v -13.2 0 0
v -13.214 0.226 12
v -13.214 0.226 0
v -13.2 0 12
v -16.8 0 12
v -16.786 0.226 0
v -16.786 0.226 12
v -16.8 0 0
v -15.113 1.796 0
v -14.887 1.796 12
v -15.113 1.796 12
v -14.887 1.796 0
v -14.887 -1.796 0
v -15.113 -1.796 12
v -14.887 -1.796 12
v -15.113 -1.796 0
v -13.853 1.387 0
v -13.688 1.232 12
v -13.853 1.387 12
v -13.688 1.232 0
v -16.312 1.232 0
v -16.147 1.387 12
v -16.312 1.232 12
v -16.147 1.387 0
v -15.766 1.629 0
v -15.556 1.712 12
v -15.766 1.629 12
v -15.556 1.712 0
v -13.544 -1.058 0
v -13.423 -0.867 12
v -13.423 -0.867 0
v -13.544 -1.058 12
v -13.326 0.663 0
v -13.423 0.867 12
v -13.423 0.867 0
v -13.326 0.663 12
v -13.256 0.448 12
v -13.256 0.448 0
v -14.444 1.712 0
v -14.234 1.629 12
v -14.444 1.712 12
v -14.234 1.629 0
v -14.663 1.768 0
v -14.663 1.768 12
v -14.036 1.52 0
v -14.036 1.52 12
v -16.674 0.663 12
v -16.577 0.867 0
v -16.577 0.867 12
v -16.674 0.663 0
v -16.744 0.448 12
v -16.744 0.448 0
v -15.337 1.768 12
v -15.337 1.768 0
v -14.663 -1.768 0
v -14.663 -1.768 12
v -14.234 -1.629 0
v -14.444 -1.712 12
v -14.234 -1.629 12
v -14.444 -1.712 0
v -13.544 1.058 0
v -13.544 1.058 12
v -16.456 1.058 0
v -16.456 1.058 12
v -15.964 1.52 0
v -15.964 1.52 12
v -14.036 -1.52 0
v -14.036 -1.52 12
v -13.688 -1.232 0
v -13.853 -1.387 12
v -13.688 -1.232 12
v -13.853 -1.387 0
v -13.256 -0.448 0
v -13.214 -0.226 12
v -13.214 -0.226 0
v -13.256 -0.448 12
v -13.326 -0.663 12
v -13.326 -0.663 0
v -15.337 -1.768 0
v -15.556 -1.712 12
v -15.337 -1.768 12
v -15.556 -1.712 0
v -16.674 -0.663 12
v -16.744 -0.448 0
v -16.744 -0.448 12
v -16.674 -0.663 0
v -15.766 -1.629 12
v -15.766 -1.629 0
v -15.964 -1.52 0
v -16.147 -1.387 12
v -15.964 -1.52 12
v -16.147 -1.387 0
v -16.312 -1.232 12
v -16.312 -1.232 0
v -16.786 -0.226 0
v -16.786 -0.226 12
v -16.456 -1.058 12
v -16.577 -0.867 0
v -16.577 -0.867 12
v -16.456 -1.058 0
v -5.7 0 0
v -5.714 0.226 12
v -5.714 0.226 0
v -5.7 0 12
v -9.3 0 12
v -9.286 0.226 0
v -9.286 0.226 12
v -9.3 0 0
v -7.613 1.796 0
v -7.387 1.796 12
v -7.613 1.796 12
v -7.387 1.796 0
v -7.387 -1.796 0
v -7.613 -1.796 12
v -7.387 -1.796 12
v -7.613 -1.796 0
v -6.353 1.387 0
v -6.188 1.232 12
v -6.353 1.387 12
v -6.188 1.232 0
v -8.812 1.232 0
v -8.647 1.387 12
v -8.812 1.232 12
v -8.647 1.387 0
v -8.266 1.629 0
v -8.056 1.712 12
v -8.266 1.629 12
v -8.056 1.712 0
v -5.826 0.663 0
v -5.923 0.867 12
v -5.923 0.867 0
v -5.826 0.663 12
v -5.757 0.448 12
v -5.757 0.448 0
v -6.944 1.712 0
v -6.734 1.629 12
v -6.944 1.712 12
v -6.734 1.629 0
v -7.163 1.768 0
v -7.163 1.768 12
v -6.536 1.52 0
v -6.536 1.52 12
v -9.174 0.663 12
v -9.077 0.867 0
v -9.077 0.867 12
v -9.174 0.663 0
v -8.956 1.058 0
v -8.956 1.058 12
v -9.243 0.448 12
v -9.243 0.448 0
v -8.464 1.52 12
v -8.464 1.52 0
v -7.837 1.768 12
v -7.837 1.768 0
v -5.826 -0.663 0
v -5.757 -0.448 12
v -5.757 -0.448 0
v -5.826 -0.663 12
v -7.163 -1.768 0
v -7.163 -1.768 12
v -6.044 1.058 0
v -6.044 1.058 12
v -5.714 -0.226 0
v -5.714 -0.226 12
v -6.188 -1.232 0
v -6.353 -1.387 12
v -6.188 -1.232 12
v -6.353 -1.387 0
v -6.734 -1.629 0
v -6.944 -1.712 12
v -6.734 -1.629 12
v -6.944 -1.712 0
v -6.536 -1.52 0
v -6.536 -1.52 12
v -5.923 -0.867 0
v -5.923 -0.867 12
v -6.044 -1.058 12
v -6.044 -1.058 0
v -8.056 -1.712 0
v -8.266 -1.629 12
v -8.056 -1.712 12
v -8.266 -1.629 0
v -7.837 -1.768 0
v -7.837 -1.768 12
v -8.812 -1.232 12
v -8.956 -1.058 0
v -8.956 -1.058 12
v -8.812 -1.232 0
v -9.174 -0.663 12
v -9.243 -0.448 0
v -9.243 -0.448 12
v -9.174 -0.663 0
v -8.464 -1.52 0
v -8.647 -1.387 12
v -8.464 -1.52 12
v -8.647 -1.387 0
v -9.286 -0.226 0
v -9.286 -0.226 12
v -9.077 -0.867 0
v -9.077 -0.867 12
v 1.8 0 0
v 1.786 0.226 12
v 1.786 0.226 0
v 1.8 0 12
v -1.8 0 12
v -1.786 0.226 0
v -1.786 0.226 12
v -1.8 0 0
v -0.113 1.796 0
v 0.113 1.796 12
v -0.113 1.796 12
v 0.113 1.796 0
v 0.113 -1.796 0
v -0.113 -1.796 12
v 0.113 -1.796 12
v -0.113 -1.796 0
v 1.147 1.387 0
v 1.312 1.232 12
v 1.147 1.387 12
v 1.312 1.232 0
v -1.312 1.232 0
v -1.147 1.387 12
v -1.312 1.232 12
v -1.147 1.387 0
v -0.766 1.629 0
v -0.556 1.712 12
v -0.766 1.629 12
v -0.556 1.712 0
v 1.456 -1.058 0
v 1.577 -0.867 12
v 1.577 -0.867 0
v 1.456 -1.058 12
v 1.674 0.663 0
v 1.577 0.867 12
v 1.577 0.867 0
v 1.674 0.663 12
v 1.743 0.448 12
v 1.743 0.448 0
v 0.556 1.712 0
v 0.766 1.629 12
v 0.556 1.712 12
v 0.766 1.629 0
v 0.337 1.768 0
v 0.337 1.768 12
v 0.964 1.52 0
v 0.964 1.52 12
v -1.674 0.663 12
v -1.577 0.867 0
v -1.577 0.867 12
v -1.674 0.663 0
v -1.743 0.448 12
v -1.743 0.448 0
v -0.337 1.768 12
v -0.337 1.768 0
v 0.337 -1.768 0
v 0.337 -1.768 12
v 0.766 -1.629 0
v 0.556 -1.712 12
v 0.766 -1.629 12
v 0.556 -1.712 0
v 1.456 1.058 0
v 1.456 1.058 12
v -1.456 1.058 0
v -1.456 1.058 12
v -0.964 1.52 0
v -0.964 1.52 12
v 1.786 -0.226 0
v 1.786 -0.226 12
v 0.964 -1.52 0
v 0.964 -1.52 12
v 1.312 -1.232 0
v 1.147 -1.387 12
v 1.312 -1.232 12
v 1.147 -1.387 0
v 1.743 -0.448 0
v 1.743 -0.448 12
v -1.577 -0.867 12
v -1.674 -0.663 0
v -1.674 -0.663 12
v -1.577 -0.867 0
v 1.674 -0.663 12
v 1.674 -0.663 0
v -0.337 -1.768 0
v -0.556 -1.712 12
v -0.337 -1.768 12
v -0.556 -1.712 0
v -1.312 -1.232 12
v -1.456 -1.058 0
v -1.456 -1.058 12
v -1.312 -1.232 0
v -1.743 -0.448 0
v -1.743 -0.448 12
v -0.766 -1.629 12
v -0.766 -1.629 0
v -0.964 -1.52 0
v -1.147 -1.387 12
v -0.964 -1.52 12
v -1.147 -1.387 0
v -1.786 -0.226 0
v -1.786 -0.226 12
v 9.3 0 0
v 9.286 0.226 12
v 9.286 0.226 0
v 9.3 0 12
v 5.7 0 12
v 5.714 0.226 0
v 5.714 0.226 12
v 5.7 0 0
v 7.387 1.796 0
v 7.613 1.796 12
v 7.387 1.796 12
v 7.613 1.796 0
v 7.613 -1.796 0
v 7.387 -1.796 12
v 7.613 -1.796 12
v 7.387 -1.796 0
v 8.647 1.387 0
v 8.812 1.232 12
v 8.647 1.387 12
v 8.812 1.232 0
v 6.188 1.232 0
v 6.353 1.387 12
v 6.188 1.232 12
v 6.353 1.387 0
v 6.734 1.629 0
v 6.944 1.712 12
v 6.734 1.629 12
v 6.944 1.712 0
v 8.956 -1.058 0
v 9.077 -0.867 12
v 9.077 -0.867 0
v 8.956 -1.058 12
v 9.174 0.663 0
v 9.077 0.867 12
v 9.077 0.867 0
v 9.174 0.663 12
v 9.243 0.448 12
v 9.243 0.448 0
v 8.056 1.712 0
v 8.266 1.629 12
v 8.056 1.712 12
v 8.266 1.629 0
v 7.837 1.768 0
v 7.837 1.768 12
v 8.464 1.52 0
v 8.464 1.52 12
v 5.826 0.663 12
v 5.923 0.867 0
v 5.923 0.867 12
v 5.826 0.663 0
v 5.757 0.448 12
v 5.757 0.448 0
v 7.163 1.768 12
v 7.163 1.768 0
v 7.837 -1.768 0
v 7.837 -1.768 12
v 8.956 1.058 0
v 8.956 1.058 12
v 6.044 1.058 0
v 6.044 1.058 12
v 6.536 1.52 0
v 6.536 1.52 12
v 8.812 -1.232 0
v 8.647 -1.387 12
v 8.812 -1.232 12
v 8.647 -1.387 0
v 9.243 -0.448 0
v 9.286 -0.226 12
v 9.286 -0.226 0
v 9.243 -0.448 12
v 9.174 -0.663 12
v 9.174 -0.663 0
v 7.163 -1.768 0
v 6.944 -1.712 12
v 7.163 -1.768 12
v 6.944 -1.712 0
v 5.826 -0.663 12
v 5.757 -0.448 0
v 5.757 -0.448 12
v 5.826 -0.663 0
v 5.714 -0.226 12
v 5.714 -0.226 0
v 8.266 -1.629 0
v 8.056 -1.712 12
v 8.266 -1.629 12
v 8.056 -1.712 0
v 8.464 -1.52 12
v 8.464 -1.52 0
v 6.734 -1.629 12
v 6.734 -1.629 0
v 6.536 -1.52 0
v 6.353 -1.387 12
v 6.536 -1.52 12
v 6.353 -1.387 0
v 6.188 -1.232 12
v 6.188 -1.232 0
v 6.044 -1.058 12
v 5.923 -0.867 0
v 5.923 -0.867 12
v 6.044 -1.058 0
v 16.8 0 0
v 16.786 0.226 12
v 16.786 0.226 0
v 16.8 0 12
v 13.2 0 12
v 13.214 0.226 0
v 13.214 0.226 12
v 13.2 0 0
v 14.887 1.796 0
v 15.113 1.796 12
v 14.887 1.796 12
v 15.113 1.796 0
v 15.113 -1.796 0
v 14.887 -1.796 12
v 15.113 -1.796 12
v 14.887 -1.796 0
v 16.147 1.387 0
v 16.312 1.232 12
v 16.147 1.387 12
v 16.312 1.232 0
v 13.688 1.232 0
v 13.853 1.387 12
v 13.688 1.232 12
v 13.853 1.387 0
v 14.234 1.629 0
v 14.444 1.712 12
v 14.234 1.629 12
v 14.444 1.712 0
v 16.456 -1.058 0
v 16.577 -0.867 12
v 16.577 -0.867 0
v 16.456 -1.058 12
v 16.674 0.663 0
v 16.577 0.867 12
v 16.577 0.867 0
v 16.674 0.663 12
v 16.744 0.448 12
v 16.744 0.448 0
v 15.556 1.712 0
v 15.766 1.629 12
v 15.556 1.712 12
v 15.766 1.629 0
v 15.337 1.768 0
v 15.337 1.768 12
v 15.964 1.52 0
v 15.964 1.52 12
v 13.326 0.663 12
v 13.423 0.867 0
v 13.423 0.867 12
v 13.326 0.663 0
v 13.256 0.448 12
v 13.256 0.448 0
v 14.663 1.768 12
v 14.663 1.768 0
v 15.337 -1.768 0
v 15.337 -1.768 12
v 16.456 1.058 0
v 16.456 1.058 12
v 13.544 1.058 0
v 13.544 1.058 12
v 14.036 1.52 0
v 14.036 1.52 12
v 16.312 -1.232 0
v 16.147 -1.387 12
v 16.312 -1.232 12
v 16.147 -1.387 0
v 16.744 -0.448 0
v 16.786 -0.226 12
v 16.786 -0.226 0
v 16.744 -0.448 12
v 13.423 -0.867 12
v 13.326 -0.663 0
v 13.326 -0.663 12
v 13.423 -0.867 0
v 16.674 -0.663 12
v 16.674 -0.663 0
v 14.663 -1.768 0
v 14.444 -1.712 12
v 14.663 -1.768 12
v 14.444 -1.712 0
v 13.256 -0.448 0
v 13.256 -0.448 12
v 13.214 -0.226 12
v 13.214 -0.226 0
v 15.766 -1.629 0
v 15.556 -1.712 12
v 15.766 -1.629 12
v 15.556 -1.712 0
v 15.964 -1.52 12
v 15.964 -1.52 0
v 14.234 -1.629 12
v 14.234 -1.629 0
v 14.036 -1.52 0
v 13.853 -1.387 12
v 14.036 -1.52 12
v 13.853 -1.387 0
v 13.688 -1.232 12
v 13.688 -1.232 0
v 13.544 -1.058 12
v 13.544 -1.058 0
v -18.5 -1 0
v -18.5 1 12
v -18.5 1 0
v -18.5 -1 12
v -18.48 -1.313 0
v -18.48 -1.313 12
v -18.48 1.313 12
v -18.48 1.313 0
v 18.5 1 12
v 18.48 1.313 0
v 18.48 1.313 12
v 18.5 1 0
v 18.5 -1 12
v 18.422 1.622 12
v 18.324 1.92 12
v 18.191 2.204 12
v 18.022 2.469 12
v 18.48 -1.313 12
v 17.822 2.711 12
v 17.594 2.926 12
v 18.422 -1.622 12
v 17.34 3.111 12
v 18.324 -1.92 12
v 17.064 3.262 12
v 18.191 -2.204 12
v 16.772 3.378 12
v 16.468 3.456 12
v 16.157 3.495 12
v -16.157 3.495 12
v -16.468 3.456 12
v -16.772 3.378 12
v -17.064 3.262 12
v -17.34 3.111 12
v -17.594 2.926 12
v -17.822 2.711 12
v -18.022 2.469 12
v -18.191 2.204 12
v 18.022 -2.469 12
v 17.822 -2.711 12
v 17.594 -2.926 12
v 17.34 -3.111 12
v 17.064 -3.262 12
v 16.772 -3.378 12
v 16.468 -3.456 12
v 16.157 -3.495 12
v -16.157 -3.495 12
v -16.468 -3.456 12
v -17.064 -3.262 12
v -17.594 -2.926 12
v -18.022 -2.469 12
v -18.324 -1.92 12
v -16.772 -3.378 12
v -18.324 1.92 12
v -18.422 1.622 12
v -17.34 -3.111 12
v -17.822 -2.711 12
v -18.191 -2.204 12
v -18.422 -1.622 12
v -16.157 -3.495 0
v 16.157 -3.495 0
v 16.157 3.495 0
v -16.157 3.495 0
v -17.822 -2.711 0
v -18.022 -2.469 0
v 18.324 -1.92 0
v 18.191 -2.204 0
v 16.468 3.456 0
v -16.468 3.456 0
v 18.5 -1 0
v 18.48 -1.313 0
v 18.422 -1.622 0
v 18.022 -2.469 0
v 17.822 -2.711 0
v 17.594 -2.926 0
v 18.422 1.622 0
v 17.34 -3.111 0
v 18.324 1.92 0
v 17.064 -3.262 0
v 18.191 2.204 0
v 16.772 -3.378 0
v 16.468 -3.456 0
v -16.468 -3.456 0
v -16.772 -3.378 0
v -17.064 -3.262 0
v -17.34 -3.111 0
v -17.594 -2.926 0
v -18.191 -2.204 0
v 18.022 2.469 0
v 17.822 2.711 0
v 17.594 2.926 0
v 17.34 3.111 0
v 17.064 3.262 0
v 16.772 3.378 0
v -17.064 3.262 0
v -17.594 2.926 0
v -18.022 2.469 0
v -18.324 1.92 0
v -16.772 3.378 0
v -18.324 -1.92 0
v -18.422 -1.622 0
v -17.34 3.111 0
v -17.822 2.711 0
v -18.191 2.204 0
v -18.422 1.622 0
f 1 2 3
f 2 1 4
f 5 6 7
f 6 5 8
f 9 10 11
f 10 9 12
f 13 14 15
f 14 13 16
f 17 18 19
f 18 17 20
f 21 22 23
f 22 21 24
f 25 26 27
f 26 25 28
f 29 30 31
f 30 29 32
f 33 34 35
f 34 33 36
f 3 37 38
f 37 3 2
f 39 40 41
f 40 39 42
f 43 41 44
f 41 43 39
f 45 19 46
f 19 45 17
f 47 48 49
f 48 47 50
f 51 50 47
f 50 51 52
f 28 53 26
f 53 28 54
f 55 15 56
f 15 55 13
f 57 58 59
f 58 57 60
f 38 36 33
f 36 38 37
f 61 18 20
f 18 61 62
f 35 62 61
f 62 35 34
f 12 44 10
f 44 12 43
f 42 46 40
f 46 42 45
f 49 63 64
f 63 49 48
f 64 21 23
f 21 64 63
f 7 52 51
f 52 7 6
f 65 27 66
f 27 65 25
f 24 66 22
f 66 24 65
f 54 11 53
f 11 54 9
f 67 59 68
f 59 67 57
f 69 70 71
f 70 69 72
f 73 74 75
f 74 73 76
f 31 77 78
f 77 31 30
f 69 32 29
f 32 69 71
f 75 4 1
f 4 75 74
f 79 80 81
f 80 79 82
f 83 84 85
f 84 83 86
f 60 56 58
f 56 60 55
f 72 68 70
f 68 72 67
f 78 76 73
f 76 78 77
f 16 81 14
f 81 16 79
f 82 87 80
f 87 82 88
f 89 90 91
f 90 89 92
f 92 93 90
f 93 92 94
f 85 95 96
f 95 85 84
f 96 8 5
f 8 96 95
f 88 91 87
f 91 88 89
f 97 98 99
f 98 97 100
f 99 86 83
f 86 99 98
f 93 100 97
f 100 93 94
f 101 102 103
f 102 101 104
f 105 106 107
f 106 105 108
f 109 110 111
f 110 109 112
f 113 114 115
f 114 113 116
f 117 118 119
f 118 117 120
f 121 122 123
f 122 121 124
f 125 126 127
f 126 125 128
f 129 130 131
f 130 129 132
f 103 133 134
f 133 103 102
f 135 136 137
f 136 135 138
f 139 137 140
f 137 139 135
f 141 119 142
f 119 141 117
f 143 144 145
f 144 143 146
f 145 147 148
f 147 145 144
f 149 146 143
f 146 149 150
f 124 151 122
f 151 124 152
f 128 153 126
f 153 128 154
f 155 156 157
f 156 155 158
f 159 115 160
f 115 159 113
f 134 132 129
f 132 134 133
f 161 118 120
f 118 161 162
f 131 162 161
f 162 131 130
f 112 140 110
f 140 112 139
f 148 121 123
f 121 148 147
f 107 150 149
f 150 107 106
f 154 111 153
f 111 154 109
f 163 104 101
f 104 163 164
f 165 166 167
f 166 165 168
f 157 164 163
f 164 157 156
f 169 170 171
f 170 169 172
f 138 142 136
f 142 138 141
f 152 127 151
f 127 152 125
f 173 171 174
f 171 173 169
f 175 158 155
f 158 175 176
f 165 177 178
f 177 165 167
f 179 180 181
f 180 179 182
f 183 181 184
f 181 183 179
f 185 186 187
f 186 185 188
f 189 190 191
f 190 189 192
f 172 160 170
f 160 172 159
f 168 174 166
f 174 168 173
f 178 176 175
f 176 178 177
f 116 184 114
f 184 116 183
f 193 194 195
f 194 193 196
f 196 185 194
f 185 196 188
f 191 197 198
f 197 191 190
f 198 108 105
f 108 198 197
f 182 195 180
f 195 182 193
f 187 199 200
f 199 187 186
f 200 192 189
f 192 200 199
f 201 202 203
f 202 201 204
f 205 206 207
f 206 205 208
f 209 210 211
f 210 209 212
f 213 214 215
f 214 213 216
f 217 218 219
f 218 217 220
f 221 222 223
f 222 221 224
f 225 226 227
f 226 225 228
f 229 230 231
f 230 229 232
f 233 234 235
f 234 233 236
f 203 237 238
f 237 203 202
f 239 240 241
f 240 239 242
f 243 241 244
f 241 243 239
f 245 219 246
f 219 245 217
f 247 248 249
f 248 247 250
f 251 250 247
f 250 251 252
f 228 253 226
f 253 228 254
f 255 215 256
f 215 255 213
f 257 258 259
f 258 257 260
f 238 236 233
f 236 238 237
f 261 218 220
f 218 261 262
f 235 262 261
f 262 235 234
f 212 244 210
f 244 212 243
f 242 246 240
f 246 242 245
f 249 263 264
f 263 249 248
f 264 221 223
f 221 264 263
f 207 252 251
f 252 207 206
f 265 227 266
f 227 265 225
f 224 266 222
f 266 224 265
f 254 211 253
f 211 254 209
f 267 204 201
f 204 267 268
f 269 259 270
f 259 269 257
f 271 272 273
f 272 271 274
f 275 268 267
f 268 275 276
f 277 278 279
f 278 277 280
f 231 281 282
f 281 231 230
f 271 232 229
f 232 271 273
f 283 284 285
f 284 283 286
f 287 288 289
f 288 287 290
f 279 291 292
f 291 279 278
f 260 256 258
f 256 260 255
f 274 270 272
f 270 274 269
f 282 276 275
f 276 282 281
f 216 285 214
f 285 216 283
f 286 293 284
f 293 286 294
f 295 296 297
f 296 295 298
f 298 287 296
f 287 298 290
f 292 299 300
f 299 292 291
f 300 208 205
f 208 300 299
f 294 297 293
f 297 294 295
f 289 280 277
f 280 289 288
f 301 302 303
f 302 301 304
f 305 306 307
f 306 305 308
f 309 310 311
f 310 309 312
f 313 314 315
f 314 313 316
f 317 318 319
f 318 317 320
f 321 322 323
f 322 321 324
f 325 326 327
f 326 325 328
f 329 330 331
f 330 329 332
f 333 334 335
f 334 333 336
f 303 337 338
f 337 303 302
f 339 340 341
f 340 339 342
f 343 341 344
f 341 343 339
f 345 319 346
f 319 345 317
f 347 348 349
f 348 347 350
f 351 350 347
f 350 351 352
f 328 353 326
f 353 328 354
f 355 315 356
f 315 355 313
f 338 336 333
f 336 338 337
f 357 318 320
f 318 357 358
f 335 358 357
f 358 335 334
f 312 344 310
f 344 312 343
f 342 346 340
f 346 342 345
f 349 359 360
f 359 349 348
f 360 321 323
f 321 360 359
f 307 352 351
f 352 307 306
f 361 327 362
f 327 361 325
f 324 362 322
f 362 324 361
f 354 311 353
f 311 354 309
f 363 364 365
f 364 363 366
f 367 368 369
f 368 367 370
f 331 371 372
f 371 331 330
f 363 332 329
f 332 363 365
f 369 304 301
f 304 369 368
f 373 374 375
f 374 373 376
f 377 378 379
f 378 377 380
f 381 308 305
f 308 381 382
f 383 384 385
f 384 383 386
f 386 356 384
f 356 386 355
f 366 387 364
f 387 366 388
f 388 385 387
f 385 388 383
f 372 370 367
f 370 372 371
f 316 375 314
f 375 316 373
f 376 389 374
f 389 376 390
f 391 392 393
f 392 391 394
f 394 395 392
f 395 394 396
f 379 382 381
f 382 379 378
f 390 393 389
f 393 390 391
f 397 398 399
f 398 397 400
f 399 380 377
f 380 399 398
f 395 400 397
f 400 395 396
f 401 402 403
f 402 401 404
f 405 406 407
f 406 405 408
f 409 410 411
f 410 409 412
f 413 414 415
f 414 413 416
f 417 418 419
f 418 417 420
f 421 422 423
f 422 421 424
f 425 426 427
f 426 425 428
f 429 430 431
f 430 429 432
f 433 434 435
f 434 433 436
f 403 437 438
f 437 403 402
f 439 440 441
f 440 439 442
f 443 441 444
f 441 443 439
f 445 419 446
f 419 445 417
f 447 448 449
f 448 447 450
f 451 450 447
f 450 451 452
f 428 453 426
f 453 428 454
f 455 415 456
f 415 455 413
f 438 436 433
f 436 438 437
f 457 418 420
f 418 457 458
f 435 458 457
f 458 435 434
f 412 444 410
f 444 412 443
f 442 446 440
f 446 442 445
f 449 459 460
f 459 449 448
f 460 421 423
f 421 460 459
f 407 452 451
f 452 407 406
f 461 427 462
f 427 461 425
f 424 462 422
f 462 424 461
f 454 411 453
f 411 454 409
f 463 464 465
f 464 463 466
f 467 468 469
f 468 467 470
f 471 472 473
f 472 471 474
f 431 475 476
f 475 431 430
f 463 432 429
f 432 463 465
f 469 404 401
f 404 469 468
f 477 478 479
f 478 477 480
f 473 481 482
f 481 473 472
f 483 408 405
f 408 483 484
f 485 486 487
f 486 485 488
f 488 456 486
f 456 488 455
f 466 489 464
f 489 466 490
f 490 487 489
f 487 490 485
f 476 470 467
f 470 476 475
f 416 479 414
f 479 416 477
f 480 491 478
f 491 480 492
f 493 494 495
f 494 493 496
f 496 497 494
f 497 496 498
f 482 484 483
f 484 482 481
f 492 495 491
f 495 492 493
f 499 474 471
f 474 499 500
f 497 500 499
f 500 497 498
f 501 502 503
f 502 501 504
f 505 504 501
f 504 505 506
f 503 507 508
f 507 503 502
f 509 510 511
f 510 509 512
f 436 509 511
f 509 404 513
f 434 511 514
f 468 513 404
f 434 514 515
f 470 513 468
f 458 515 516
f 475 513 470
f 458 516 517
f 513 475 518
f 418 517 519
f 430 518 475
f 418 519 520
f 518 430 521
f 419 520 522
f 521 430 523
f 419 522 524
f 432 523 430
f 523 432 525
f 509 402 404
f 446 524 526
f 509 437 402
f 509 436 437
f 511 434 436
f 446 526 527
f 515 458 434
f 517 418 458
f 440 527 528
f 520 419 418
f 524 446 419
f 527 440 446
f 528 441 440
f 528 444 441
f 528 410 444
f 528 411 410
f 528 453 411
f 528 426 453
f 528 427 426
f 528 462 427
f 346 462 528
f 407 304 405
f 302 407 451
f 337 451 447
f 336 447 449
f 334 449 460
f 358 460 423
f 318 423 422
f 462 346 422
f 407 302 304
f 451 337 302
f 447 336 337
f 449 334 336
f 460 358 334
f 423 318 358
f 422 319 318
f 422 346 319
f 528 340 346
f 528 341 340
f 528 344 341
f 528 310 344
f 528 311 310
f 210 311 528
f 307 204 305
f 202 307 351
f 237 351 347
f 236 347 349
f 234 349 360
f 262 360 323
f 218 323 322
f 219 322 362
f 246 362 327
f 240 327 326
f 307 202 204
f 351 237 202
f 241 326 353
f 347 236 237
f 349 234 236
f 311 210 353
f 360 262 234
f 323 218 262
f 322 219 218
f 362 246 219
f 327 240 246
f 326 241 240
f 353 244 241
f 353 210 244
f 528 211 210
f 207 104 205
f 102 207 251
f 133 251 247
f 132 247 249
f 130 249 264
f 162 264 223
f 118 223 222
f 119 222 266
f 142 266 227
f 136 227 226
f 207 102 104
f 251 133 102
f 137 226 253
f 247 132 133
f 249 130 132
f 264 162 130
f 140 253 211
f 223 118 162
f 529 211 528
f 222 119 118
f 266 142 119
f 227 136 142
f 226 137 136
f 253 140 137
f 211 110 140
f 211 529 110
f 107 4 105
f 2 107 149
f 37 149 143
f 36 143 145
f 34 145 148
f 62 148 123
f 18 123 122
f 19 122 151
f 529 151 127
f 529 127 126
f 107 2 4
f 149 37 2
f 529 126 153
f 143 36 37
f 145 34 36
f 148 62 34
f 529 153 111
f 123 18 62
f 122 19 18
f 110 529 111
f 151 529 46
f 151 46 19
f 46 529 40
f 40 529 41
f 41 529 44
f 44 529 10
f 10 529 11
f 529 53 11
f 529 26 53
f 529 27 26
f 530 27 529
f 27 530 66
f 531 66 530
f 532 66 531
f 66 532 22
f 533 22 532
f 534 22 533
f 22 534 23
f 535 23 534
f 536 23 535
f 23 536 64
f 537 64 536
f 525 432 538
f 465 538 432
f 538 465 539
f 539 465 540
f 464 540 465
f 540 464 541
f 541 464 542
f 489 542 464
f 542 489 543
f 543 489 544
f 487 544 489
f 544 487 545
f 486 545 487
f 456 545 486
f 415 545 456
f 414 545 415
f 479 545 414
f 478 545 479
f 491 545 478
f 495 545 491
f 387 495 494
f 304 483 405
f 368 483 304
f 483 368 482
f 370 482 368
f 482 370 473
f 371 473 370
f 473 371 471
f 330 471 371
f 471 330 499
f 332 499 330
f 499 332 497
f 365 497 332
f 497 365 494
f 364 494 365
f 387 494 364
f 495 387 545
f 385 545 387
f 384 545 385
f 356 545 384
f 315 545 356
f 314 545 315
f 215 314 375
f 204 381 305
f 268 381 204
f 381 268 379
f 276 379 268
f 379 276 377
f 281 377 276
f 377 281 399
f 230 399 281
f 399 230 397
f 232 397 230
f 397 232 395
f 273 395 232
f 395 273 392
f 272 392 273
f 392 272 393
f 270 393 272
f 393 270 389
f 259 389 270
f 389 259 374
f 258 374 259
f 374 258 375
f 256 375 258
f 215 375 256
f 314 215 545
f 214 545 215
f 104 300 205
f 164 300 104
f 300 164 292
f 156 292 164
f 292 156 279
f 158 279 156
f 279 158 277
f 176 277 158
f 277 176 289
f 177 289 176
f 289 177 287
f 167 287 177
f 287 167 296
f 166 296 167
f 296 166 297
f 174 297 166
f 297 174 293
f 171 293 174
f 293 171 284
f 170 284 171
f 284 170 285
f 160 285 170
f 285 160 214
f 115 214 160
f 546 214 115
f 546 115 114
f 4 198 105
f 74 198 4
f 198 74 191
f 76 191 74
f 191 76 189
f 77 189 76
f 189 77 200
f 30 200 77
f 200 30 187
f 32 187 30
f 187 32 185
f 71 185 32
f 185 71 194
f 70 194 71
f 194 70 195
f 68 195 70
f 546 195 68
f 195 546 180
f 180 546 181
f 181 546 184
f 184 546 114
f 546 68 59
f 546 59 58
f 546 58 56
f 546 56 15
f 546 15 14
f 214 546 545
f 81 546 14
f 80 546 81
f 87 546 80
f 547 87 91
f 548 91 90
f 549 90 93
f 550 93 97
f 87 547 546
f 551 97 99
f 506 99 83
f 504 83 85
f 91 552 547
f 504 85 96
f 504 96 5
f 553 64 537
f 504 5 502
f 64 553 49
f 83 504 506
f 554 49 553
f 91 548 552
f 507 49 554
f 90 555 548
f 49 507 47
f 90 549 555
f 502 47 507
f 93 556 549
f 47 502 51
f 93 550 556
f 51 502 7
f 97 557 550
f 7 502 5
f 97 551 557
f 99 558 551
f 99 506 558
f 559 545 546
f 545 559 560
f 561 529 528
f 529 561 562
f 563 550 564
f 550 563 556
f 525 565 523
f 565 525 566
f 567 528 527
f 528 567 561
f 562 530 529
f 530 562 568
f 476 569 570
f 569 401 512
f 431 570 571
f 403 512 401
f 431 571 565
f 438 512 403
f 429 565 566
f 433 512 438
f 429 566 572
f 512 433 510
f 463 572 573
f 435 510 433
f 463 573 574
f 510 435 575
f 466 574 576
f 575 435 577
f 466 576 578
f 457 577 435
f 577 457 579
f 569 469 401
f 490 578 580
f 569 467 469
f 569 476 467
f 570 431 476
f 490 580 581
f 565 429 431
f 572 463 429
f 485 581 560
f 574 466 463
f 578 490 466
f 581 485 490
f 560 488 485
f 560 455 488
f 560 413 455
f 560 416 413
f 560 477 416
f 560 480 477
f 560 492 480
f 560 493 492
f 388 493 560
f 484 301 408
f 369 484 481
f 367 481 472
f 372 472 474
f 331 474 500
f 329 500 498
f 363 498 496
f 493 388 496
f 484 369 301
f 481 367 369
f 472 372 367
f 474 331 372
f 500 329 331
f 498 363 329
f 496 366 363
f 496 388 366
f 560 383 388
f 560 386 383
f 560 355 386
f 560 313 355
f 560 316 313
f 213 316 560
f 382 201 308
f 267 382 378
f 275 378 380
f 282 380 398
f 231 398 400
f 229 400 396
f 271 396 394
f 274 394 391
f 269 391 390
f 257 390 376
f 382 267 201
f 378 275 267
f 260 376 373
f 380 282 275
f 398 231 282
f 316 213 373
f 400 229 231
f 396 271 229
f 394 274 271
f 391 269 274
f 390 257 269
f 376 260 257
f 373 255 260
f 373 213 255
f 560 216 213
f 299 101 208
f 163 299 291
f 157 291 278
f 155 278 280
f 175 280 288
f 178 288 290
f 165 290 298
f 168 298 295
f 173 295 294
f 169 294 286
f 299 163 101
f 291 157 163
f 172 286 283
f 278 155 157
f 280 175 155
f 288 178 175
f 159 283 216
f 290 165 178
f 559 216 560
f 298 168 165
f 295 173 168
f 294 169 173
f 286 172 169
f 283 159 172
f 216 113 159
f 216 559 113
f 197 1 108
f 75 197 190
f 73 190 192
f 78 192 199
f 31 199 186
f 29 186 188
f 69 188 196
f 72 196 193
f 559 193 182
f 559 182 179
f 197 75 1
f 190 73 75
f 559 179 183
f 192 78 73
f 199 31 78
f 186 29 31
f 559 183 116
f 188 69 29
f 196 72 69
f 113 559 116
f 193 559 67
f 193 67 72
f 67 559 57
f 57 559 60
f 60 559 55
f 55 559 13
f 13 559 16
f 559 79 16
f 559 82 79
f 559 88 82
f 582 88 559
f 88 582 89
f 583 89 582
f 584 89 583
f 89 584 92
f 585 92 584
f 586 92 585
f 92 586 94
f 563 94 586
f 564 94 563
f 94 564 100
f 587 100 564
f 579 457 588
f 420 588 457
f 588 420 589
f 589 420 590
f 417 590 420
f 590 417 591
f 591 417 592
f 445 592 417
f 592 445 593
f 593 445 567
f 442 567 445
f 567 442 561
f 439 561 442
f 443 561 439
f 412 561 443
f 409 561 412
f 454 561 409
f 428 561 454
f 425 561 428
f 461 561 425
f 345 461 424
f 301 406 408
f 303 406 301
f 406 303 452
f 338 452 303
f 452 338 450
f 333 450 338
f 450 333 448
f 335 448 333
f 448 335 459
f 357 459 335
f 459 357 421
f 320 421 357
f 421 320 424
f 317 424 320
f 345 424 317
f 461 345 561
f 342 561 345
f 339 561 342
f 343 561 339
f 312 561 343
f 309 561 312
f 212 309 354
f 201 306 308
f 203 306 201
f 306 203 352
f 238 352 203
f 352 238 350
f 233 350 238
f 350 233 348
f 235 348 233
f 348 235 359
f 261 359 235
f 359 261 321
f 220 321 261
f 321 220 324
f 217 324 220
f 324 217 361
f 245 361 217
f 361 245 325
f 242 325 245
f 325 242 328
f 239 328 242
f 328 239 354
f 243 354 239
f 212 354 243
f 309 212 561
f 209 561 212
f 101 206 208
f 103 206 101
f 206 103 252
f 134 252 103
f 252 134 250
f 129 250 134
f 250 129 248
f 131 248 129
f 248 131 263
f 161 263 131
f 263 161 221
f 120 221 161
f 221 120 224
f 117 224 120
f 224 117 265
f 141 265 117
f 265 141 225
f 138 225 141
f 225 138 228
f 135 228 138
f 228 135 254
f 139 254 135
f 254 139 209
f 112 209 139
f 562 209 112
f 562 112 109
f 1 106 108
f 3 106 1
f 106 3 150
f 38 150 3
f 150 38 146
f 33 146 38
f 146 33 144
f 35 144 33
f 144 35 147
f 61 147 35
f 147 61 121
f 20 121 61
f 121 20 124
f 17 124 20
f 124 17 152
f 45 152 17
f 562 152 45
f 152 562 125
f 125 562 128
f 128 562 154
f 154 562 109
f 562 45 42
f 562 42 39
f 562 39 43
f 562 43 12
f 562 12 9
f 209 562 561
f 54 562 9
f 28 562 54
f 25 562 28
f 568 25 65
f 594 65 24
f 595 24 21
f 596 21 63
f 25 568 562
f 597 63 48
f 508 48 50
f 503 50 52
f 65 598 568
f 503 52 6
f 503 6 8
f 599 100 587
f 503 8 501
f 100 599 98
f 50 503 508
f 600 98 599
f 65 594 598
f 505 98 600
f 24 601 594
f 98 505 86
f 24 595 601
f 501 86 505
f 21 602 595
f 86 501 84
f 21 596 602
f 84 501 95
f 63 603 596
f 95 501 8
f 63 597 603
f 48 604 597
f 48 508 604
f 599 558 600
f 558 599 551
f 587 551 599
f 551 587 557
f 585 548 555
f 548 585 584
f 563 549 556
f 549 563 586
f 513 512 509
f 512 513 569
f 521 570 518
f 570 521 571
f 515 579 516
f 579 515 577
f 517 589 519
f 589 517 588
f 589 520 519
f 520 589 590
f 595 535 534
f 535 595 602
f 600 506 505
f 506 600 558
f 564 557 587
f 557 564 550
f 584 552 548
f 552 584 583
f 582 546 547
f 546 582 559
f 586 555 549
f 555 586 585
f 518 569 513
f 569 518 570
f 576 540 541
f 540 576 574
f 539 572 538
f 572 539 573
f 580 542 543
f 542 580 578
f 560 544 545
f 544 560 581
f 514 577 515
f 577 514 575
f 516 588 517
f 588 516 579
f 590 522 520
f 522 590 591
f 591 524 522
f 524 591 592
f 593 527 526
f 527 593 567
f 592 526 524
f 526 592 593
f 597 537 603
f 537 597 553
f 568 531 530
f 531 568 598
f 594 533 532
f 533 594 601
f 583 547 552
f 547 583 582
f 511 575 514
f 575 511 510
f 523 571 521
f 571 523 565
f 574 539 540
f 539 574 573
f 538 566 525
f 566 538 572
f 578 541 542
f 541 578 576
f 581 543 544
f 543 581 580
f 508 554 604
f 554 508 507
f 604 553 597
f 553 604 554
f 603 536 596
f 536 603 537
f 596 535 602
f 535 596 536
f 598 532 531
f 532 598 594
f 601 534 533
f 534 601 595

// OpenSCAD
$fn = 50;


difference() {
	union() {
		translate(v = [0, 0, 0]) {
			rotate(a = [0, 0, 0]) {
				hull() {
					translate(v = [-16.0000000000, 1.0000000000, 0]) {
						rotate(a = [0, 0, 0]) {
							translate(v = [0, 0, 0]) {
								rotate(a = [0, 0, 0]) {
									cylinder(h = 12, r = 2.5000000000);
								}
							}
						}
					}
					translate(v = [16.0000000000, 1.0000000000, 0]) {
						rotate(a = [0, 0, 0]) {
							translate(v = [0, 0, 0]) {
								rotate(a = [0, 0, 0]) {
									cylinder(h = 12, r = 2.5000000000);
								}
							}
						}
					}
					translate(v = [-16.0000000000, -1.0000000000, 0]) {
						rotate(a = [0, 0, 0]) {
							translate(v = [0, 0, 0]) {
								rotate(a = [0, 0, 0]) {
									cylinder(h = 12, r = 2.5000000000);
								}
							}
						}
					}
					translate(v = [16.0000000000, -1.0000000000, 0]) {
						rotate(a = [0, 0, 0]) {
							translate(v = [0, 0, 0]) {
								rotate(a = [0, 0, 0]) {
									cylinder(h = 12, r = 2.5000000000);
								}
							}
						}
					}
				}
			}
		}
	}
	union() {
		translate(v = [-15.0000000000, 0.0000000000, 0]) {
			rotate(a = [0, 0, 0]) {
				translate(v = [0, 0, -50]) {
					rotate(a = [0, 0, 0]) {
						cylinder(h = 100, r = 1.8000000000);
					}
				}
			}
		}
		translate(v = [-7.5000000000, 0.0000000000, 0]) {
			rotate(a = [0, 0, 0]) {
				translate(v = [0, 0, -50]) {
					rotate(a = [0, 0, 0]) {
						cylinder(h = 100, r = 1.8000000000);
					}
				}
			}
		}
		translate(v = [0.0000000000, 0.0000000000, 0]) {
			rotate(a = [0, 0, 0]) {
				translate(v = [0, 0, -50]) {
					rotate(a = [0, 0, 0]) {
						cylinder(h = 100, r = 1.8000000000);
					}
				}
			}
		}
		translate(v = [7.5000000000, 0.0000000000, 0]) {
			rotate(a = [0, 0, 0]) {
				translate(v = [0, 0, -50]) {
					rotate(a = [0, 0, 0]) {
						cylinder(h = 100, r = 1.8000000000);
					}
				}
			}
		}
		translate(v = [15.0000000000, 0.0000000000, 0]) {
			rotate(a = [0, 0, 0]) {
				translate(v = [0, 0, -50]) {
					rotate(a = [0, 0, 0]) {
						cylinder(h = 100, r = 1.8000000000);
					}
				}
			}
		}
	}
}
